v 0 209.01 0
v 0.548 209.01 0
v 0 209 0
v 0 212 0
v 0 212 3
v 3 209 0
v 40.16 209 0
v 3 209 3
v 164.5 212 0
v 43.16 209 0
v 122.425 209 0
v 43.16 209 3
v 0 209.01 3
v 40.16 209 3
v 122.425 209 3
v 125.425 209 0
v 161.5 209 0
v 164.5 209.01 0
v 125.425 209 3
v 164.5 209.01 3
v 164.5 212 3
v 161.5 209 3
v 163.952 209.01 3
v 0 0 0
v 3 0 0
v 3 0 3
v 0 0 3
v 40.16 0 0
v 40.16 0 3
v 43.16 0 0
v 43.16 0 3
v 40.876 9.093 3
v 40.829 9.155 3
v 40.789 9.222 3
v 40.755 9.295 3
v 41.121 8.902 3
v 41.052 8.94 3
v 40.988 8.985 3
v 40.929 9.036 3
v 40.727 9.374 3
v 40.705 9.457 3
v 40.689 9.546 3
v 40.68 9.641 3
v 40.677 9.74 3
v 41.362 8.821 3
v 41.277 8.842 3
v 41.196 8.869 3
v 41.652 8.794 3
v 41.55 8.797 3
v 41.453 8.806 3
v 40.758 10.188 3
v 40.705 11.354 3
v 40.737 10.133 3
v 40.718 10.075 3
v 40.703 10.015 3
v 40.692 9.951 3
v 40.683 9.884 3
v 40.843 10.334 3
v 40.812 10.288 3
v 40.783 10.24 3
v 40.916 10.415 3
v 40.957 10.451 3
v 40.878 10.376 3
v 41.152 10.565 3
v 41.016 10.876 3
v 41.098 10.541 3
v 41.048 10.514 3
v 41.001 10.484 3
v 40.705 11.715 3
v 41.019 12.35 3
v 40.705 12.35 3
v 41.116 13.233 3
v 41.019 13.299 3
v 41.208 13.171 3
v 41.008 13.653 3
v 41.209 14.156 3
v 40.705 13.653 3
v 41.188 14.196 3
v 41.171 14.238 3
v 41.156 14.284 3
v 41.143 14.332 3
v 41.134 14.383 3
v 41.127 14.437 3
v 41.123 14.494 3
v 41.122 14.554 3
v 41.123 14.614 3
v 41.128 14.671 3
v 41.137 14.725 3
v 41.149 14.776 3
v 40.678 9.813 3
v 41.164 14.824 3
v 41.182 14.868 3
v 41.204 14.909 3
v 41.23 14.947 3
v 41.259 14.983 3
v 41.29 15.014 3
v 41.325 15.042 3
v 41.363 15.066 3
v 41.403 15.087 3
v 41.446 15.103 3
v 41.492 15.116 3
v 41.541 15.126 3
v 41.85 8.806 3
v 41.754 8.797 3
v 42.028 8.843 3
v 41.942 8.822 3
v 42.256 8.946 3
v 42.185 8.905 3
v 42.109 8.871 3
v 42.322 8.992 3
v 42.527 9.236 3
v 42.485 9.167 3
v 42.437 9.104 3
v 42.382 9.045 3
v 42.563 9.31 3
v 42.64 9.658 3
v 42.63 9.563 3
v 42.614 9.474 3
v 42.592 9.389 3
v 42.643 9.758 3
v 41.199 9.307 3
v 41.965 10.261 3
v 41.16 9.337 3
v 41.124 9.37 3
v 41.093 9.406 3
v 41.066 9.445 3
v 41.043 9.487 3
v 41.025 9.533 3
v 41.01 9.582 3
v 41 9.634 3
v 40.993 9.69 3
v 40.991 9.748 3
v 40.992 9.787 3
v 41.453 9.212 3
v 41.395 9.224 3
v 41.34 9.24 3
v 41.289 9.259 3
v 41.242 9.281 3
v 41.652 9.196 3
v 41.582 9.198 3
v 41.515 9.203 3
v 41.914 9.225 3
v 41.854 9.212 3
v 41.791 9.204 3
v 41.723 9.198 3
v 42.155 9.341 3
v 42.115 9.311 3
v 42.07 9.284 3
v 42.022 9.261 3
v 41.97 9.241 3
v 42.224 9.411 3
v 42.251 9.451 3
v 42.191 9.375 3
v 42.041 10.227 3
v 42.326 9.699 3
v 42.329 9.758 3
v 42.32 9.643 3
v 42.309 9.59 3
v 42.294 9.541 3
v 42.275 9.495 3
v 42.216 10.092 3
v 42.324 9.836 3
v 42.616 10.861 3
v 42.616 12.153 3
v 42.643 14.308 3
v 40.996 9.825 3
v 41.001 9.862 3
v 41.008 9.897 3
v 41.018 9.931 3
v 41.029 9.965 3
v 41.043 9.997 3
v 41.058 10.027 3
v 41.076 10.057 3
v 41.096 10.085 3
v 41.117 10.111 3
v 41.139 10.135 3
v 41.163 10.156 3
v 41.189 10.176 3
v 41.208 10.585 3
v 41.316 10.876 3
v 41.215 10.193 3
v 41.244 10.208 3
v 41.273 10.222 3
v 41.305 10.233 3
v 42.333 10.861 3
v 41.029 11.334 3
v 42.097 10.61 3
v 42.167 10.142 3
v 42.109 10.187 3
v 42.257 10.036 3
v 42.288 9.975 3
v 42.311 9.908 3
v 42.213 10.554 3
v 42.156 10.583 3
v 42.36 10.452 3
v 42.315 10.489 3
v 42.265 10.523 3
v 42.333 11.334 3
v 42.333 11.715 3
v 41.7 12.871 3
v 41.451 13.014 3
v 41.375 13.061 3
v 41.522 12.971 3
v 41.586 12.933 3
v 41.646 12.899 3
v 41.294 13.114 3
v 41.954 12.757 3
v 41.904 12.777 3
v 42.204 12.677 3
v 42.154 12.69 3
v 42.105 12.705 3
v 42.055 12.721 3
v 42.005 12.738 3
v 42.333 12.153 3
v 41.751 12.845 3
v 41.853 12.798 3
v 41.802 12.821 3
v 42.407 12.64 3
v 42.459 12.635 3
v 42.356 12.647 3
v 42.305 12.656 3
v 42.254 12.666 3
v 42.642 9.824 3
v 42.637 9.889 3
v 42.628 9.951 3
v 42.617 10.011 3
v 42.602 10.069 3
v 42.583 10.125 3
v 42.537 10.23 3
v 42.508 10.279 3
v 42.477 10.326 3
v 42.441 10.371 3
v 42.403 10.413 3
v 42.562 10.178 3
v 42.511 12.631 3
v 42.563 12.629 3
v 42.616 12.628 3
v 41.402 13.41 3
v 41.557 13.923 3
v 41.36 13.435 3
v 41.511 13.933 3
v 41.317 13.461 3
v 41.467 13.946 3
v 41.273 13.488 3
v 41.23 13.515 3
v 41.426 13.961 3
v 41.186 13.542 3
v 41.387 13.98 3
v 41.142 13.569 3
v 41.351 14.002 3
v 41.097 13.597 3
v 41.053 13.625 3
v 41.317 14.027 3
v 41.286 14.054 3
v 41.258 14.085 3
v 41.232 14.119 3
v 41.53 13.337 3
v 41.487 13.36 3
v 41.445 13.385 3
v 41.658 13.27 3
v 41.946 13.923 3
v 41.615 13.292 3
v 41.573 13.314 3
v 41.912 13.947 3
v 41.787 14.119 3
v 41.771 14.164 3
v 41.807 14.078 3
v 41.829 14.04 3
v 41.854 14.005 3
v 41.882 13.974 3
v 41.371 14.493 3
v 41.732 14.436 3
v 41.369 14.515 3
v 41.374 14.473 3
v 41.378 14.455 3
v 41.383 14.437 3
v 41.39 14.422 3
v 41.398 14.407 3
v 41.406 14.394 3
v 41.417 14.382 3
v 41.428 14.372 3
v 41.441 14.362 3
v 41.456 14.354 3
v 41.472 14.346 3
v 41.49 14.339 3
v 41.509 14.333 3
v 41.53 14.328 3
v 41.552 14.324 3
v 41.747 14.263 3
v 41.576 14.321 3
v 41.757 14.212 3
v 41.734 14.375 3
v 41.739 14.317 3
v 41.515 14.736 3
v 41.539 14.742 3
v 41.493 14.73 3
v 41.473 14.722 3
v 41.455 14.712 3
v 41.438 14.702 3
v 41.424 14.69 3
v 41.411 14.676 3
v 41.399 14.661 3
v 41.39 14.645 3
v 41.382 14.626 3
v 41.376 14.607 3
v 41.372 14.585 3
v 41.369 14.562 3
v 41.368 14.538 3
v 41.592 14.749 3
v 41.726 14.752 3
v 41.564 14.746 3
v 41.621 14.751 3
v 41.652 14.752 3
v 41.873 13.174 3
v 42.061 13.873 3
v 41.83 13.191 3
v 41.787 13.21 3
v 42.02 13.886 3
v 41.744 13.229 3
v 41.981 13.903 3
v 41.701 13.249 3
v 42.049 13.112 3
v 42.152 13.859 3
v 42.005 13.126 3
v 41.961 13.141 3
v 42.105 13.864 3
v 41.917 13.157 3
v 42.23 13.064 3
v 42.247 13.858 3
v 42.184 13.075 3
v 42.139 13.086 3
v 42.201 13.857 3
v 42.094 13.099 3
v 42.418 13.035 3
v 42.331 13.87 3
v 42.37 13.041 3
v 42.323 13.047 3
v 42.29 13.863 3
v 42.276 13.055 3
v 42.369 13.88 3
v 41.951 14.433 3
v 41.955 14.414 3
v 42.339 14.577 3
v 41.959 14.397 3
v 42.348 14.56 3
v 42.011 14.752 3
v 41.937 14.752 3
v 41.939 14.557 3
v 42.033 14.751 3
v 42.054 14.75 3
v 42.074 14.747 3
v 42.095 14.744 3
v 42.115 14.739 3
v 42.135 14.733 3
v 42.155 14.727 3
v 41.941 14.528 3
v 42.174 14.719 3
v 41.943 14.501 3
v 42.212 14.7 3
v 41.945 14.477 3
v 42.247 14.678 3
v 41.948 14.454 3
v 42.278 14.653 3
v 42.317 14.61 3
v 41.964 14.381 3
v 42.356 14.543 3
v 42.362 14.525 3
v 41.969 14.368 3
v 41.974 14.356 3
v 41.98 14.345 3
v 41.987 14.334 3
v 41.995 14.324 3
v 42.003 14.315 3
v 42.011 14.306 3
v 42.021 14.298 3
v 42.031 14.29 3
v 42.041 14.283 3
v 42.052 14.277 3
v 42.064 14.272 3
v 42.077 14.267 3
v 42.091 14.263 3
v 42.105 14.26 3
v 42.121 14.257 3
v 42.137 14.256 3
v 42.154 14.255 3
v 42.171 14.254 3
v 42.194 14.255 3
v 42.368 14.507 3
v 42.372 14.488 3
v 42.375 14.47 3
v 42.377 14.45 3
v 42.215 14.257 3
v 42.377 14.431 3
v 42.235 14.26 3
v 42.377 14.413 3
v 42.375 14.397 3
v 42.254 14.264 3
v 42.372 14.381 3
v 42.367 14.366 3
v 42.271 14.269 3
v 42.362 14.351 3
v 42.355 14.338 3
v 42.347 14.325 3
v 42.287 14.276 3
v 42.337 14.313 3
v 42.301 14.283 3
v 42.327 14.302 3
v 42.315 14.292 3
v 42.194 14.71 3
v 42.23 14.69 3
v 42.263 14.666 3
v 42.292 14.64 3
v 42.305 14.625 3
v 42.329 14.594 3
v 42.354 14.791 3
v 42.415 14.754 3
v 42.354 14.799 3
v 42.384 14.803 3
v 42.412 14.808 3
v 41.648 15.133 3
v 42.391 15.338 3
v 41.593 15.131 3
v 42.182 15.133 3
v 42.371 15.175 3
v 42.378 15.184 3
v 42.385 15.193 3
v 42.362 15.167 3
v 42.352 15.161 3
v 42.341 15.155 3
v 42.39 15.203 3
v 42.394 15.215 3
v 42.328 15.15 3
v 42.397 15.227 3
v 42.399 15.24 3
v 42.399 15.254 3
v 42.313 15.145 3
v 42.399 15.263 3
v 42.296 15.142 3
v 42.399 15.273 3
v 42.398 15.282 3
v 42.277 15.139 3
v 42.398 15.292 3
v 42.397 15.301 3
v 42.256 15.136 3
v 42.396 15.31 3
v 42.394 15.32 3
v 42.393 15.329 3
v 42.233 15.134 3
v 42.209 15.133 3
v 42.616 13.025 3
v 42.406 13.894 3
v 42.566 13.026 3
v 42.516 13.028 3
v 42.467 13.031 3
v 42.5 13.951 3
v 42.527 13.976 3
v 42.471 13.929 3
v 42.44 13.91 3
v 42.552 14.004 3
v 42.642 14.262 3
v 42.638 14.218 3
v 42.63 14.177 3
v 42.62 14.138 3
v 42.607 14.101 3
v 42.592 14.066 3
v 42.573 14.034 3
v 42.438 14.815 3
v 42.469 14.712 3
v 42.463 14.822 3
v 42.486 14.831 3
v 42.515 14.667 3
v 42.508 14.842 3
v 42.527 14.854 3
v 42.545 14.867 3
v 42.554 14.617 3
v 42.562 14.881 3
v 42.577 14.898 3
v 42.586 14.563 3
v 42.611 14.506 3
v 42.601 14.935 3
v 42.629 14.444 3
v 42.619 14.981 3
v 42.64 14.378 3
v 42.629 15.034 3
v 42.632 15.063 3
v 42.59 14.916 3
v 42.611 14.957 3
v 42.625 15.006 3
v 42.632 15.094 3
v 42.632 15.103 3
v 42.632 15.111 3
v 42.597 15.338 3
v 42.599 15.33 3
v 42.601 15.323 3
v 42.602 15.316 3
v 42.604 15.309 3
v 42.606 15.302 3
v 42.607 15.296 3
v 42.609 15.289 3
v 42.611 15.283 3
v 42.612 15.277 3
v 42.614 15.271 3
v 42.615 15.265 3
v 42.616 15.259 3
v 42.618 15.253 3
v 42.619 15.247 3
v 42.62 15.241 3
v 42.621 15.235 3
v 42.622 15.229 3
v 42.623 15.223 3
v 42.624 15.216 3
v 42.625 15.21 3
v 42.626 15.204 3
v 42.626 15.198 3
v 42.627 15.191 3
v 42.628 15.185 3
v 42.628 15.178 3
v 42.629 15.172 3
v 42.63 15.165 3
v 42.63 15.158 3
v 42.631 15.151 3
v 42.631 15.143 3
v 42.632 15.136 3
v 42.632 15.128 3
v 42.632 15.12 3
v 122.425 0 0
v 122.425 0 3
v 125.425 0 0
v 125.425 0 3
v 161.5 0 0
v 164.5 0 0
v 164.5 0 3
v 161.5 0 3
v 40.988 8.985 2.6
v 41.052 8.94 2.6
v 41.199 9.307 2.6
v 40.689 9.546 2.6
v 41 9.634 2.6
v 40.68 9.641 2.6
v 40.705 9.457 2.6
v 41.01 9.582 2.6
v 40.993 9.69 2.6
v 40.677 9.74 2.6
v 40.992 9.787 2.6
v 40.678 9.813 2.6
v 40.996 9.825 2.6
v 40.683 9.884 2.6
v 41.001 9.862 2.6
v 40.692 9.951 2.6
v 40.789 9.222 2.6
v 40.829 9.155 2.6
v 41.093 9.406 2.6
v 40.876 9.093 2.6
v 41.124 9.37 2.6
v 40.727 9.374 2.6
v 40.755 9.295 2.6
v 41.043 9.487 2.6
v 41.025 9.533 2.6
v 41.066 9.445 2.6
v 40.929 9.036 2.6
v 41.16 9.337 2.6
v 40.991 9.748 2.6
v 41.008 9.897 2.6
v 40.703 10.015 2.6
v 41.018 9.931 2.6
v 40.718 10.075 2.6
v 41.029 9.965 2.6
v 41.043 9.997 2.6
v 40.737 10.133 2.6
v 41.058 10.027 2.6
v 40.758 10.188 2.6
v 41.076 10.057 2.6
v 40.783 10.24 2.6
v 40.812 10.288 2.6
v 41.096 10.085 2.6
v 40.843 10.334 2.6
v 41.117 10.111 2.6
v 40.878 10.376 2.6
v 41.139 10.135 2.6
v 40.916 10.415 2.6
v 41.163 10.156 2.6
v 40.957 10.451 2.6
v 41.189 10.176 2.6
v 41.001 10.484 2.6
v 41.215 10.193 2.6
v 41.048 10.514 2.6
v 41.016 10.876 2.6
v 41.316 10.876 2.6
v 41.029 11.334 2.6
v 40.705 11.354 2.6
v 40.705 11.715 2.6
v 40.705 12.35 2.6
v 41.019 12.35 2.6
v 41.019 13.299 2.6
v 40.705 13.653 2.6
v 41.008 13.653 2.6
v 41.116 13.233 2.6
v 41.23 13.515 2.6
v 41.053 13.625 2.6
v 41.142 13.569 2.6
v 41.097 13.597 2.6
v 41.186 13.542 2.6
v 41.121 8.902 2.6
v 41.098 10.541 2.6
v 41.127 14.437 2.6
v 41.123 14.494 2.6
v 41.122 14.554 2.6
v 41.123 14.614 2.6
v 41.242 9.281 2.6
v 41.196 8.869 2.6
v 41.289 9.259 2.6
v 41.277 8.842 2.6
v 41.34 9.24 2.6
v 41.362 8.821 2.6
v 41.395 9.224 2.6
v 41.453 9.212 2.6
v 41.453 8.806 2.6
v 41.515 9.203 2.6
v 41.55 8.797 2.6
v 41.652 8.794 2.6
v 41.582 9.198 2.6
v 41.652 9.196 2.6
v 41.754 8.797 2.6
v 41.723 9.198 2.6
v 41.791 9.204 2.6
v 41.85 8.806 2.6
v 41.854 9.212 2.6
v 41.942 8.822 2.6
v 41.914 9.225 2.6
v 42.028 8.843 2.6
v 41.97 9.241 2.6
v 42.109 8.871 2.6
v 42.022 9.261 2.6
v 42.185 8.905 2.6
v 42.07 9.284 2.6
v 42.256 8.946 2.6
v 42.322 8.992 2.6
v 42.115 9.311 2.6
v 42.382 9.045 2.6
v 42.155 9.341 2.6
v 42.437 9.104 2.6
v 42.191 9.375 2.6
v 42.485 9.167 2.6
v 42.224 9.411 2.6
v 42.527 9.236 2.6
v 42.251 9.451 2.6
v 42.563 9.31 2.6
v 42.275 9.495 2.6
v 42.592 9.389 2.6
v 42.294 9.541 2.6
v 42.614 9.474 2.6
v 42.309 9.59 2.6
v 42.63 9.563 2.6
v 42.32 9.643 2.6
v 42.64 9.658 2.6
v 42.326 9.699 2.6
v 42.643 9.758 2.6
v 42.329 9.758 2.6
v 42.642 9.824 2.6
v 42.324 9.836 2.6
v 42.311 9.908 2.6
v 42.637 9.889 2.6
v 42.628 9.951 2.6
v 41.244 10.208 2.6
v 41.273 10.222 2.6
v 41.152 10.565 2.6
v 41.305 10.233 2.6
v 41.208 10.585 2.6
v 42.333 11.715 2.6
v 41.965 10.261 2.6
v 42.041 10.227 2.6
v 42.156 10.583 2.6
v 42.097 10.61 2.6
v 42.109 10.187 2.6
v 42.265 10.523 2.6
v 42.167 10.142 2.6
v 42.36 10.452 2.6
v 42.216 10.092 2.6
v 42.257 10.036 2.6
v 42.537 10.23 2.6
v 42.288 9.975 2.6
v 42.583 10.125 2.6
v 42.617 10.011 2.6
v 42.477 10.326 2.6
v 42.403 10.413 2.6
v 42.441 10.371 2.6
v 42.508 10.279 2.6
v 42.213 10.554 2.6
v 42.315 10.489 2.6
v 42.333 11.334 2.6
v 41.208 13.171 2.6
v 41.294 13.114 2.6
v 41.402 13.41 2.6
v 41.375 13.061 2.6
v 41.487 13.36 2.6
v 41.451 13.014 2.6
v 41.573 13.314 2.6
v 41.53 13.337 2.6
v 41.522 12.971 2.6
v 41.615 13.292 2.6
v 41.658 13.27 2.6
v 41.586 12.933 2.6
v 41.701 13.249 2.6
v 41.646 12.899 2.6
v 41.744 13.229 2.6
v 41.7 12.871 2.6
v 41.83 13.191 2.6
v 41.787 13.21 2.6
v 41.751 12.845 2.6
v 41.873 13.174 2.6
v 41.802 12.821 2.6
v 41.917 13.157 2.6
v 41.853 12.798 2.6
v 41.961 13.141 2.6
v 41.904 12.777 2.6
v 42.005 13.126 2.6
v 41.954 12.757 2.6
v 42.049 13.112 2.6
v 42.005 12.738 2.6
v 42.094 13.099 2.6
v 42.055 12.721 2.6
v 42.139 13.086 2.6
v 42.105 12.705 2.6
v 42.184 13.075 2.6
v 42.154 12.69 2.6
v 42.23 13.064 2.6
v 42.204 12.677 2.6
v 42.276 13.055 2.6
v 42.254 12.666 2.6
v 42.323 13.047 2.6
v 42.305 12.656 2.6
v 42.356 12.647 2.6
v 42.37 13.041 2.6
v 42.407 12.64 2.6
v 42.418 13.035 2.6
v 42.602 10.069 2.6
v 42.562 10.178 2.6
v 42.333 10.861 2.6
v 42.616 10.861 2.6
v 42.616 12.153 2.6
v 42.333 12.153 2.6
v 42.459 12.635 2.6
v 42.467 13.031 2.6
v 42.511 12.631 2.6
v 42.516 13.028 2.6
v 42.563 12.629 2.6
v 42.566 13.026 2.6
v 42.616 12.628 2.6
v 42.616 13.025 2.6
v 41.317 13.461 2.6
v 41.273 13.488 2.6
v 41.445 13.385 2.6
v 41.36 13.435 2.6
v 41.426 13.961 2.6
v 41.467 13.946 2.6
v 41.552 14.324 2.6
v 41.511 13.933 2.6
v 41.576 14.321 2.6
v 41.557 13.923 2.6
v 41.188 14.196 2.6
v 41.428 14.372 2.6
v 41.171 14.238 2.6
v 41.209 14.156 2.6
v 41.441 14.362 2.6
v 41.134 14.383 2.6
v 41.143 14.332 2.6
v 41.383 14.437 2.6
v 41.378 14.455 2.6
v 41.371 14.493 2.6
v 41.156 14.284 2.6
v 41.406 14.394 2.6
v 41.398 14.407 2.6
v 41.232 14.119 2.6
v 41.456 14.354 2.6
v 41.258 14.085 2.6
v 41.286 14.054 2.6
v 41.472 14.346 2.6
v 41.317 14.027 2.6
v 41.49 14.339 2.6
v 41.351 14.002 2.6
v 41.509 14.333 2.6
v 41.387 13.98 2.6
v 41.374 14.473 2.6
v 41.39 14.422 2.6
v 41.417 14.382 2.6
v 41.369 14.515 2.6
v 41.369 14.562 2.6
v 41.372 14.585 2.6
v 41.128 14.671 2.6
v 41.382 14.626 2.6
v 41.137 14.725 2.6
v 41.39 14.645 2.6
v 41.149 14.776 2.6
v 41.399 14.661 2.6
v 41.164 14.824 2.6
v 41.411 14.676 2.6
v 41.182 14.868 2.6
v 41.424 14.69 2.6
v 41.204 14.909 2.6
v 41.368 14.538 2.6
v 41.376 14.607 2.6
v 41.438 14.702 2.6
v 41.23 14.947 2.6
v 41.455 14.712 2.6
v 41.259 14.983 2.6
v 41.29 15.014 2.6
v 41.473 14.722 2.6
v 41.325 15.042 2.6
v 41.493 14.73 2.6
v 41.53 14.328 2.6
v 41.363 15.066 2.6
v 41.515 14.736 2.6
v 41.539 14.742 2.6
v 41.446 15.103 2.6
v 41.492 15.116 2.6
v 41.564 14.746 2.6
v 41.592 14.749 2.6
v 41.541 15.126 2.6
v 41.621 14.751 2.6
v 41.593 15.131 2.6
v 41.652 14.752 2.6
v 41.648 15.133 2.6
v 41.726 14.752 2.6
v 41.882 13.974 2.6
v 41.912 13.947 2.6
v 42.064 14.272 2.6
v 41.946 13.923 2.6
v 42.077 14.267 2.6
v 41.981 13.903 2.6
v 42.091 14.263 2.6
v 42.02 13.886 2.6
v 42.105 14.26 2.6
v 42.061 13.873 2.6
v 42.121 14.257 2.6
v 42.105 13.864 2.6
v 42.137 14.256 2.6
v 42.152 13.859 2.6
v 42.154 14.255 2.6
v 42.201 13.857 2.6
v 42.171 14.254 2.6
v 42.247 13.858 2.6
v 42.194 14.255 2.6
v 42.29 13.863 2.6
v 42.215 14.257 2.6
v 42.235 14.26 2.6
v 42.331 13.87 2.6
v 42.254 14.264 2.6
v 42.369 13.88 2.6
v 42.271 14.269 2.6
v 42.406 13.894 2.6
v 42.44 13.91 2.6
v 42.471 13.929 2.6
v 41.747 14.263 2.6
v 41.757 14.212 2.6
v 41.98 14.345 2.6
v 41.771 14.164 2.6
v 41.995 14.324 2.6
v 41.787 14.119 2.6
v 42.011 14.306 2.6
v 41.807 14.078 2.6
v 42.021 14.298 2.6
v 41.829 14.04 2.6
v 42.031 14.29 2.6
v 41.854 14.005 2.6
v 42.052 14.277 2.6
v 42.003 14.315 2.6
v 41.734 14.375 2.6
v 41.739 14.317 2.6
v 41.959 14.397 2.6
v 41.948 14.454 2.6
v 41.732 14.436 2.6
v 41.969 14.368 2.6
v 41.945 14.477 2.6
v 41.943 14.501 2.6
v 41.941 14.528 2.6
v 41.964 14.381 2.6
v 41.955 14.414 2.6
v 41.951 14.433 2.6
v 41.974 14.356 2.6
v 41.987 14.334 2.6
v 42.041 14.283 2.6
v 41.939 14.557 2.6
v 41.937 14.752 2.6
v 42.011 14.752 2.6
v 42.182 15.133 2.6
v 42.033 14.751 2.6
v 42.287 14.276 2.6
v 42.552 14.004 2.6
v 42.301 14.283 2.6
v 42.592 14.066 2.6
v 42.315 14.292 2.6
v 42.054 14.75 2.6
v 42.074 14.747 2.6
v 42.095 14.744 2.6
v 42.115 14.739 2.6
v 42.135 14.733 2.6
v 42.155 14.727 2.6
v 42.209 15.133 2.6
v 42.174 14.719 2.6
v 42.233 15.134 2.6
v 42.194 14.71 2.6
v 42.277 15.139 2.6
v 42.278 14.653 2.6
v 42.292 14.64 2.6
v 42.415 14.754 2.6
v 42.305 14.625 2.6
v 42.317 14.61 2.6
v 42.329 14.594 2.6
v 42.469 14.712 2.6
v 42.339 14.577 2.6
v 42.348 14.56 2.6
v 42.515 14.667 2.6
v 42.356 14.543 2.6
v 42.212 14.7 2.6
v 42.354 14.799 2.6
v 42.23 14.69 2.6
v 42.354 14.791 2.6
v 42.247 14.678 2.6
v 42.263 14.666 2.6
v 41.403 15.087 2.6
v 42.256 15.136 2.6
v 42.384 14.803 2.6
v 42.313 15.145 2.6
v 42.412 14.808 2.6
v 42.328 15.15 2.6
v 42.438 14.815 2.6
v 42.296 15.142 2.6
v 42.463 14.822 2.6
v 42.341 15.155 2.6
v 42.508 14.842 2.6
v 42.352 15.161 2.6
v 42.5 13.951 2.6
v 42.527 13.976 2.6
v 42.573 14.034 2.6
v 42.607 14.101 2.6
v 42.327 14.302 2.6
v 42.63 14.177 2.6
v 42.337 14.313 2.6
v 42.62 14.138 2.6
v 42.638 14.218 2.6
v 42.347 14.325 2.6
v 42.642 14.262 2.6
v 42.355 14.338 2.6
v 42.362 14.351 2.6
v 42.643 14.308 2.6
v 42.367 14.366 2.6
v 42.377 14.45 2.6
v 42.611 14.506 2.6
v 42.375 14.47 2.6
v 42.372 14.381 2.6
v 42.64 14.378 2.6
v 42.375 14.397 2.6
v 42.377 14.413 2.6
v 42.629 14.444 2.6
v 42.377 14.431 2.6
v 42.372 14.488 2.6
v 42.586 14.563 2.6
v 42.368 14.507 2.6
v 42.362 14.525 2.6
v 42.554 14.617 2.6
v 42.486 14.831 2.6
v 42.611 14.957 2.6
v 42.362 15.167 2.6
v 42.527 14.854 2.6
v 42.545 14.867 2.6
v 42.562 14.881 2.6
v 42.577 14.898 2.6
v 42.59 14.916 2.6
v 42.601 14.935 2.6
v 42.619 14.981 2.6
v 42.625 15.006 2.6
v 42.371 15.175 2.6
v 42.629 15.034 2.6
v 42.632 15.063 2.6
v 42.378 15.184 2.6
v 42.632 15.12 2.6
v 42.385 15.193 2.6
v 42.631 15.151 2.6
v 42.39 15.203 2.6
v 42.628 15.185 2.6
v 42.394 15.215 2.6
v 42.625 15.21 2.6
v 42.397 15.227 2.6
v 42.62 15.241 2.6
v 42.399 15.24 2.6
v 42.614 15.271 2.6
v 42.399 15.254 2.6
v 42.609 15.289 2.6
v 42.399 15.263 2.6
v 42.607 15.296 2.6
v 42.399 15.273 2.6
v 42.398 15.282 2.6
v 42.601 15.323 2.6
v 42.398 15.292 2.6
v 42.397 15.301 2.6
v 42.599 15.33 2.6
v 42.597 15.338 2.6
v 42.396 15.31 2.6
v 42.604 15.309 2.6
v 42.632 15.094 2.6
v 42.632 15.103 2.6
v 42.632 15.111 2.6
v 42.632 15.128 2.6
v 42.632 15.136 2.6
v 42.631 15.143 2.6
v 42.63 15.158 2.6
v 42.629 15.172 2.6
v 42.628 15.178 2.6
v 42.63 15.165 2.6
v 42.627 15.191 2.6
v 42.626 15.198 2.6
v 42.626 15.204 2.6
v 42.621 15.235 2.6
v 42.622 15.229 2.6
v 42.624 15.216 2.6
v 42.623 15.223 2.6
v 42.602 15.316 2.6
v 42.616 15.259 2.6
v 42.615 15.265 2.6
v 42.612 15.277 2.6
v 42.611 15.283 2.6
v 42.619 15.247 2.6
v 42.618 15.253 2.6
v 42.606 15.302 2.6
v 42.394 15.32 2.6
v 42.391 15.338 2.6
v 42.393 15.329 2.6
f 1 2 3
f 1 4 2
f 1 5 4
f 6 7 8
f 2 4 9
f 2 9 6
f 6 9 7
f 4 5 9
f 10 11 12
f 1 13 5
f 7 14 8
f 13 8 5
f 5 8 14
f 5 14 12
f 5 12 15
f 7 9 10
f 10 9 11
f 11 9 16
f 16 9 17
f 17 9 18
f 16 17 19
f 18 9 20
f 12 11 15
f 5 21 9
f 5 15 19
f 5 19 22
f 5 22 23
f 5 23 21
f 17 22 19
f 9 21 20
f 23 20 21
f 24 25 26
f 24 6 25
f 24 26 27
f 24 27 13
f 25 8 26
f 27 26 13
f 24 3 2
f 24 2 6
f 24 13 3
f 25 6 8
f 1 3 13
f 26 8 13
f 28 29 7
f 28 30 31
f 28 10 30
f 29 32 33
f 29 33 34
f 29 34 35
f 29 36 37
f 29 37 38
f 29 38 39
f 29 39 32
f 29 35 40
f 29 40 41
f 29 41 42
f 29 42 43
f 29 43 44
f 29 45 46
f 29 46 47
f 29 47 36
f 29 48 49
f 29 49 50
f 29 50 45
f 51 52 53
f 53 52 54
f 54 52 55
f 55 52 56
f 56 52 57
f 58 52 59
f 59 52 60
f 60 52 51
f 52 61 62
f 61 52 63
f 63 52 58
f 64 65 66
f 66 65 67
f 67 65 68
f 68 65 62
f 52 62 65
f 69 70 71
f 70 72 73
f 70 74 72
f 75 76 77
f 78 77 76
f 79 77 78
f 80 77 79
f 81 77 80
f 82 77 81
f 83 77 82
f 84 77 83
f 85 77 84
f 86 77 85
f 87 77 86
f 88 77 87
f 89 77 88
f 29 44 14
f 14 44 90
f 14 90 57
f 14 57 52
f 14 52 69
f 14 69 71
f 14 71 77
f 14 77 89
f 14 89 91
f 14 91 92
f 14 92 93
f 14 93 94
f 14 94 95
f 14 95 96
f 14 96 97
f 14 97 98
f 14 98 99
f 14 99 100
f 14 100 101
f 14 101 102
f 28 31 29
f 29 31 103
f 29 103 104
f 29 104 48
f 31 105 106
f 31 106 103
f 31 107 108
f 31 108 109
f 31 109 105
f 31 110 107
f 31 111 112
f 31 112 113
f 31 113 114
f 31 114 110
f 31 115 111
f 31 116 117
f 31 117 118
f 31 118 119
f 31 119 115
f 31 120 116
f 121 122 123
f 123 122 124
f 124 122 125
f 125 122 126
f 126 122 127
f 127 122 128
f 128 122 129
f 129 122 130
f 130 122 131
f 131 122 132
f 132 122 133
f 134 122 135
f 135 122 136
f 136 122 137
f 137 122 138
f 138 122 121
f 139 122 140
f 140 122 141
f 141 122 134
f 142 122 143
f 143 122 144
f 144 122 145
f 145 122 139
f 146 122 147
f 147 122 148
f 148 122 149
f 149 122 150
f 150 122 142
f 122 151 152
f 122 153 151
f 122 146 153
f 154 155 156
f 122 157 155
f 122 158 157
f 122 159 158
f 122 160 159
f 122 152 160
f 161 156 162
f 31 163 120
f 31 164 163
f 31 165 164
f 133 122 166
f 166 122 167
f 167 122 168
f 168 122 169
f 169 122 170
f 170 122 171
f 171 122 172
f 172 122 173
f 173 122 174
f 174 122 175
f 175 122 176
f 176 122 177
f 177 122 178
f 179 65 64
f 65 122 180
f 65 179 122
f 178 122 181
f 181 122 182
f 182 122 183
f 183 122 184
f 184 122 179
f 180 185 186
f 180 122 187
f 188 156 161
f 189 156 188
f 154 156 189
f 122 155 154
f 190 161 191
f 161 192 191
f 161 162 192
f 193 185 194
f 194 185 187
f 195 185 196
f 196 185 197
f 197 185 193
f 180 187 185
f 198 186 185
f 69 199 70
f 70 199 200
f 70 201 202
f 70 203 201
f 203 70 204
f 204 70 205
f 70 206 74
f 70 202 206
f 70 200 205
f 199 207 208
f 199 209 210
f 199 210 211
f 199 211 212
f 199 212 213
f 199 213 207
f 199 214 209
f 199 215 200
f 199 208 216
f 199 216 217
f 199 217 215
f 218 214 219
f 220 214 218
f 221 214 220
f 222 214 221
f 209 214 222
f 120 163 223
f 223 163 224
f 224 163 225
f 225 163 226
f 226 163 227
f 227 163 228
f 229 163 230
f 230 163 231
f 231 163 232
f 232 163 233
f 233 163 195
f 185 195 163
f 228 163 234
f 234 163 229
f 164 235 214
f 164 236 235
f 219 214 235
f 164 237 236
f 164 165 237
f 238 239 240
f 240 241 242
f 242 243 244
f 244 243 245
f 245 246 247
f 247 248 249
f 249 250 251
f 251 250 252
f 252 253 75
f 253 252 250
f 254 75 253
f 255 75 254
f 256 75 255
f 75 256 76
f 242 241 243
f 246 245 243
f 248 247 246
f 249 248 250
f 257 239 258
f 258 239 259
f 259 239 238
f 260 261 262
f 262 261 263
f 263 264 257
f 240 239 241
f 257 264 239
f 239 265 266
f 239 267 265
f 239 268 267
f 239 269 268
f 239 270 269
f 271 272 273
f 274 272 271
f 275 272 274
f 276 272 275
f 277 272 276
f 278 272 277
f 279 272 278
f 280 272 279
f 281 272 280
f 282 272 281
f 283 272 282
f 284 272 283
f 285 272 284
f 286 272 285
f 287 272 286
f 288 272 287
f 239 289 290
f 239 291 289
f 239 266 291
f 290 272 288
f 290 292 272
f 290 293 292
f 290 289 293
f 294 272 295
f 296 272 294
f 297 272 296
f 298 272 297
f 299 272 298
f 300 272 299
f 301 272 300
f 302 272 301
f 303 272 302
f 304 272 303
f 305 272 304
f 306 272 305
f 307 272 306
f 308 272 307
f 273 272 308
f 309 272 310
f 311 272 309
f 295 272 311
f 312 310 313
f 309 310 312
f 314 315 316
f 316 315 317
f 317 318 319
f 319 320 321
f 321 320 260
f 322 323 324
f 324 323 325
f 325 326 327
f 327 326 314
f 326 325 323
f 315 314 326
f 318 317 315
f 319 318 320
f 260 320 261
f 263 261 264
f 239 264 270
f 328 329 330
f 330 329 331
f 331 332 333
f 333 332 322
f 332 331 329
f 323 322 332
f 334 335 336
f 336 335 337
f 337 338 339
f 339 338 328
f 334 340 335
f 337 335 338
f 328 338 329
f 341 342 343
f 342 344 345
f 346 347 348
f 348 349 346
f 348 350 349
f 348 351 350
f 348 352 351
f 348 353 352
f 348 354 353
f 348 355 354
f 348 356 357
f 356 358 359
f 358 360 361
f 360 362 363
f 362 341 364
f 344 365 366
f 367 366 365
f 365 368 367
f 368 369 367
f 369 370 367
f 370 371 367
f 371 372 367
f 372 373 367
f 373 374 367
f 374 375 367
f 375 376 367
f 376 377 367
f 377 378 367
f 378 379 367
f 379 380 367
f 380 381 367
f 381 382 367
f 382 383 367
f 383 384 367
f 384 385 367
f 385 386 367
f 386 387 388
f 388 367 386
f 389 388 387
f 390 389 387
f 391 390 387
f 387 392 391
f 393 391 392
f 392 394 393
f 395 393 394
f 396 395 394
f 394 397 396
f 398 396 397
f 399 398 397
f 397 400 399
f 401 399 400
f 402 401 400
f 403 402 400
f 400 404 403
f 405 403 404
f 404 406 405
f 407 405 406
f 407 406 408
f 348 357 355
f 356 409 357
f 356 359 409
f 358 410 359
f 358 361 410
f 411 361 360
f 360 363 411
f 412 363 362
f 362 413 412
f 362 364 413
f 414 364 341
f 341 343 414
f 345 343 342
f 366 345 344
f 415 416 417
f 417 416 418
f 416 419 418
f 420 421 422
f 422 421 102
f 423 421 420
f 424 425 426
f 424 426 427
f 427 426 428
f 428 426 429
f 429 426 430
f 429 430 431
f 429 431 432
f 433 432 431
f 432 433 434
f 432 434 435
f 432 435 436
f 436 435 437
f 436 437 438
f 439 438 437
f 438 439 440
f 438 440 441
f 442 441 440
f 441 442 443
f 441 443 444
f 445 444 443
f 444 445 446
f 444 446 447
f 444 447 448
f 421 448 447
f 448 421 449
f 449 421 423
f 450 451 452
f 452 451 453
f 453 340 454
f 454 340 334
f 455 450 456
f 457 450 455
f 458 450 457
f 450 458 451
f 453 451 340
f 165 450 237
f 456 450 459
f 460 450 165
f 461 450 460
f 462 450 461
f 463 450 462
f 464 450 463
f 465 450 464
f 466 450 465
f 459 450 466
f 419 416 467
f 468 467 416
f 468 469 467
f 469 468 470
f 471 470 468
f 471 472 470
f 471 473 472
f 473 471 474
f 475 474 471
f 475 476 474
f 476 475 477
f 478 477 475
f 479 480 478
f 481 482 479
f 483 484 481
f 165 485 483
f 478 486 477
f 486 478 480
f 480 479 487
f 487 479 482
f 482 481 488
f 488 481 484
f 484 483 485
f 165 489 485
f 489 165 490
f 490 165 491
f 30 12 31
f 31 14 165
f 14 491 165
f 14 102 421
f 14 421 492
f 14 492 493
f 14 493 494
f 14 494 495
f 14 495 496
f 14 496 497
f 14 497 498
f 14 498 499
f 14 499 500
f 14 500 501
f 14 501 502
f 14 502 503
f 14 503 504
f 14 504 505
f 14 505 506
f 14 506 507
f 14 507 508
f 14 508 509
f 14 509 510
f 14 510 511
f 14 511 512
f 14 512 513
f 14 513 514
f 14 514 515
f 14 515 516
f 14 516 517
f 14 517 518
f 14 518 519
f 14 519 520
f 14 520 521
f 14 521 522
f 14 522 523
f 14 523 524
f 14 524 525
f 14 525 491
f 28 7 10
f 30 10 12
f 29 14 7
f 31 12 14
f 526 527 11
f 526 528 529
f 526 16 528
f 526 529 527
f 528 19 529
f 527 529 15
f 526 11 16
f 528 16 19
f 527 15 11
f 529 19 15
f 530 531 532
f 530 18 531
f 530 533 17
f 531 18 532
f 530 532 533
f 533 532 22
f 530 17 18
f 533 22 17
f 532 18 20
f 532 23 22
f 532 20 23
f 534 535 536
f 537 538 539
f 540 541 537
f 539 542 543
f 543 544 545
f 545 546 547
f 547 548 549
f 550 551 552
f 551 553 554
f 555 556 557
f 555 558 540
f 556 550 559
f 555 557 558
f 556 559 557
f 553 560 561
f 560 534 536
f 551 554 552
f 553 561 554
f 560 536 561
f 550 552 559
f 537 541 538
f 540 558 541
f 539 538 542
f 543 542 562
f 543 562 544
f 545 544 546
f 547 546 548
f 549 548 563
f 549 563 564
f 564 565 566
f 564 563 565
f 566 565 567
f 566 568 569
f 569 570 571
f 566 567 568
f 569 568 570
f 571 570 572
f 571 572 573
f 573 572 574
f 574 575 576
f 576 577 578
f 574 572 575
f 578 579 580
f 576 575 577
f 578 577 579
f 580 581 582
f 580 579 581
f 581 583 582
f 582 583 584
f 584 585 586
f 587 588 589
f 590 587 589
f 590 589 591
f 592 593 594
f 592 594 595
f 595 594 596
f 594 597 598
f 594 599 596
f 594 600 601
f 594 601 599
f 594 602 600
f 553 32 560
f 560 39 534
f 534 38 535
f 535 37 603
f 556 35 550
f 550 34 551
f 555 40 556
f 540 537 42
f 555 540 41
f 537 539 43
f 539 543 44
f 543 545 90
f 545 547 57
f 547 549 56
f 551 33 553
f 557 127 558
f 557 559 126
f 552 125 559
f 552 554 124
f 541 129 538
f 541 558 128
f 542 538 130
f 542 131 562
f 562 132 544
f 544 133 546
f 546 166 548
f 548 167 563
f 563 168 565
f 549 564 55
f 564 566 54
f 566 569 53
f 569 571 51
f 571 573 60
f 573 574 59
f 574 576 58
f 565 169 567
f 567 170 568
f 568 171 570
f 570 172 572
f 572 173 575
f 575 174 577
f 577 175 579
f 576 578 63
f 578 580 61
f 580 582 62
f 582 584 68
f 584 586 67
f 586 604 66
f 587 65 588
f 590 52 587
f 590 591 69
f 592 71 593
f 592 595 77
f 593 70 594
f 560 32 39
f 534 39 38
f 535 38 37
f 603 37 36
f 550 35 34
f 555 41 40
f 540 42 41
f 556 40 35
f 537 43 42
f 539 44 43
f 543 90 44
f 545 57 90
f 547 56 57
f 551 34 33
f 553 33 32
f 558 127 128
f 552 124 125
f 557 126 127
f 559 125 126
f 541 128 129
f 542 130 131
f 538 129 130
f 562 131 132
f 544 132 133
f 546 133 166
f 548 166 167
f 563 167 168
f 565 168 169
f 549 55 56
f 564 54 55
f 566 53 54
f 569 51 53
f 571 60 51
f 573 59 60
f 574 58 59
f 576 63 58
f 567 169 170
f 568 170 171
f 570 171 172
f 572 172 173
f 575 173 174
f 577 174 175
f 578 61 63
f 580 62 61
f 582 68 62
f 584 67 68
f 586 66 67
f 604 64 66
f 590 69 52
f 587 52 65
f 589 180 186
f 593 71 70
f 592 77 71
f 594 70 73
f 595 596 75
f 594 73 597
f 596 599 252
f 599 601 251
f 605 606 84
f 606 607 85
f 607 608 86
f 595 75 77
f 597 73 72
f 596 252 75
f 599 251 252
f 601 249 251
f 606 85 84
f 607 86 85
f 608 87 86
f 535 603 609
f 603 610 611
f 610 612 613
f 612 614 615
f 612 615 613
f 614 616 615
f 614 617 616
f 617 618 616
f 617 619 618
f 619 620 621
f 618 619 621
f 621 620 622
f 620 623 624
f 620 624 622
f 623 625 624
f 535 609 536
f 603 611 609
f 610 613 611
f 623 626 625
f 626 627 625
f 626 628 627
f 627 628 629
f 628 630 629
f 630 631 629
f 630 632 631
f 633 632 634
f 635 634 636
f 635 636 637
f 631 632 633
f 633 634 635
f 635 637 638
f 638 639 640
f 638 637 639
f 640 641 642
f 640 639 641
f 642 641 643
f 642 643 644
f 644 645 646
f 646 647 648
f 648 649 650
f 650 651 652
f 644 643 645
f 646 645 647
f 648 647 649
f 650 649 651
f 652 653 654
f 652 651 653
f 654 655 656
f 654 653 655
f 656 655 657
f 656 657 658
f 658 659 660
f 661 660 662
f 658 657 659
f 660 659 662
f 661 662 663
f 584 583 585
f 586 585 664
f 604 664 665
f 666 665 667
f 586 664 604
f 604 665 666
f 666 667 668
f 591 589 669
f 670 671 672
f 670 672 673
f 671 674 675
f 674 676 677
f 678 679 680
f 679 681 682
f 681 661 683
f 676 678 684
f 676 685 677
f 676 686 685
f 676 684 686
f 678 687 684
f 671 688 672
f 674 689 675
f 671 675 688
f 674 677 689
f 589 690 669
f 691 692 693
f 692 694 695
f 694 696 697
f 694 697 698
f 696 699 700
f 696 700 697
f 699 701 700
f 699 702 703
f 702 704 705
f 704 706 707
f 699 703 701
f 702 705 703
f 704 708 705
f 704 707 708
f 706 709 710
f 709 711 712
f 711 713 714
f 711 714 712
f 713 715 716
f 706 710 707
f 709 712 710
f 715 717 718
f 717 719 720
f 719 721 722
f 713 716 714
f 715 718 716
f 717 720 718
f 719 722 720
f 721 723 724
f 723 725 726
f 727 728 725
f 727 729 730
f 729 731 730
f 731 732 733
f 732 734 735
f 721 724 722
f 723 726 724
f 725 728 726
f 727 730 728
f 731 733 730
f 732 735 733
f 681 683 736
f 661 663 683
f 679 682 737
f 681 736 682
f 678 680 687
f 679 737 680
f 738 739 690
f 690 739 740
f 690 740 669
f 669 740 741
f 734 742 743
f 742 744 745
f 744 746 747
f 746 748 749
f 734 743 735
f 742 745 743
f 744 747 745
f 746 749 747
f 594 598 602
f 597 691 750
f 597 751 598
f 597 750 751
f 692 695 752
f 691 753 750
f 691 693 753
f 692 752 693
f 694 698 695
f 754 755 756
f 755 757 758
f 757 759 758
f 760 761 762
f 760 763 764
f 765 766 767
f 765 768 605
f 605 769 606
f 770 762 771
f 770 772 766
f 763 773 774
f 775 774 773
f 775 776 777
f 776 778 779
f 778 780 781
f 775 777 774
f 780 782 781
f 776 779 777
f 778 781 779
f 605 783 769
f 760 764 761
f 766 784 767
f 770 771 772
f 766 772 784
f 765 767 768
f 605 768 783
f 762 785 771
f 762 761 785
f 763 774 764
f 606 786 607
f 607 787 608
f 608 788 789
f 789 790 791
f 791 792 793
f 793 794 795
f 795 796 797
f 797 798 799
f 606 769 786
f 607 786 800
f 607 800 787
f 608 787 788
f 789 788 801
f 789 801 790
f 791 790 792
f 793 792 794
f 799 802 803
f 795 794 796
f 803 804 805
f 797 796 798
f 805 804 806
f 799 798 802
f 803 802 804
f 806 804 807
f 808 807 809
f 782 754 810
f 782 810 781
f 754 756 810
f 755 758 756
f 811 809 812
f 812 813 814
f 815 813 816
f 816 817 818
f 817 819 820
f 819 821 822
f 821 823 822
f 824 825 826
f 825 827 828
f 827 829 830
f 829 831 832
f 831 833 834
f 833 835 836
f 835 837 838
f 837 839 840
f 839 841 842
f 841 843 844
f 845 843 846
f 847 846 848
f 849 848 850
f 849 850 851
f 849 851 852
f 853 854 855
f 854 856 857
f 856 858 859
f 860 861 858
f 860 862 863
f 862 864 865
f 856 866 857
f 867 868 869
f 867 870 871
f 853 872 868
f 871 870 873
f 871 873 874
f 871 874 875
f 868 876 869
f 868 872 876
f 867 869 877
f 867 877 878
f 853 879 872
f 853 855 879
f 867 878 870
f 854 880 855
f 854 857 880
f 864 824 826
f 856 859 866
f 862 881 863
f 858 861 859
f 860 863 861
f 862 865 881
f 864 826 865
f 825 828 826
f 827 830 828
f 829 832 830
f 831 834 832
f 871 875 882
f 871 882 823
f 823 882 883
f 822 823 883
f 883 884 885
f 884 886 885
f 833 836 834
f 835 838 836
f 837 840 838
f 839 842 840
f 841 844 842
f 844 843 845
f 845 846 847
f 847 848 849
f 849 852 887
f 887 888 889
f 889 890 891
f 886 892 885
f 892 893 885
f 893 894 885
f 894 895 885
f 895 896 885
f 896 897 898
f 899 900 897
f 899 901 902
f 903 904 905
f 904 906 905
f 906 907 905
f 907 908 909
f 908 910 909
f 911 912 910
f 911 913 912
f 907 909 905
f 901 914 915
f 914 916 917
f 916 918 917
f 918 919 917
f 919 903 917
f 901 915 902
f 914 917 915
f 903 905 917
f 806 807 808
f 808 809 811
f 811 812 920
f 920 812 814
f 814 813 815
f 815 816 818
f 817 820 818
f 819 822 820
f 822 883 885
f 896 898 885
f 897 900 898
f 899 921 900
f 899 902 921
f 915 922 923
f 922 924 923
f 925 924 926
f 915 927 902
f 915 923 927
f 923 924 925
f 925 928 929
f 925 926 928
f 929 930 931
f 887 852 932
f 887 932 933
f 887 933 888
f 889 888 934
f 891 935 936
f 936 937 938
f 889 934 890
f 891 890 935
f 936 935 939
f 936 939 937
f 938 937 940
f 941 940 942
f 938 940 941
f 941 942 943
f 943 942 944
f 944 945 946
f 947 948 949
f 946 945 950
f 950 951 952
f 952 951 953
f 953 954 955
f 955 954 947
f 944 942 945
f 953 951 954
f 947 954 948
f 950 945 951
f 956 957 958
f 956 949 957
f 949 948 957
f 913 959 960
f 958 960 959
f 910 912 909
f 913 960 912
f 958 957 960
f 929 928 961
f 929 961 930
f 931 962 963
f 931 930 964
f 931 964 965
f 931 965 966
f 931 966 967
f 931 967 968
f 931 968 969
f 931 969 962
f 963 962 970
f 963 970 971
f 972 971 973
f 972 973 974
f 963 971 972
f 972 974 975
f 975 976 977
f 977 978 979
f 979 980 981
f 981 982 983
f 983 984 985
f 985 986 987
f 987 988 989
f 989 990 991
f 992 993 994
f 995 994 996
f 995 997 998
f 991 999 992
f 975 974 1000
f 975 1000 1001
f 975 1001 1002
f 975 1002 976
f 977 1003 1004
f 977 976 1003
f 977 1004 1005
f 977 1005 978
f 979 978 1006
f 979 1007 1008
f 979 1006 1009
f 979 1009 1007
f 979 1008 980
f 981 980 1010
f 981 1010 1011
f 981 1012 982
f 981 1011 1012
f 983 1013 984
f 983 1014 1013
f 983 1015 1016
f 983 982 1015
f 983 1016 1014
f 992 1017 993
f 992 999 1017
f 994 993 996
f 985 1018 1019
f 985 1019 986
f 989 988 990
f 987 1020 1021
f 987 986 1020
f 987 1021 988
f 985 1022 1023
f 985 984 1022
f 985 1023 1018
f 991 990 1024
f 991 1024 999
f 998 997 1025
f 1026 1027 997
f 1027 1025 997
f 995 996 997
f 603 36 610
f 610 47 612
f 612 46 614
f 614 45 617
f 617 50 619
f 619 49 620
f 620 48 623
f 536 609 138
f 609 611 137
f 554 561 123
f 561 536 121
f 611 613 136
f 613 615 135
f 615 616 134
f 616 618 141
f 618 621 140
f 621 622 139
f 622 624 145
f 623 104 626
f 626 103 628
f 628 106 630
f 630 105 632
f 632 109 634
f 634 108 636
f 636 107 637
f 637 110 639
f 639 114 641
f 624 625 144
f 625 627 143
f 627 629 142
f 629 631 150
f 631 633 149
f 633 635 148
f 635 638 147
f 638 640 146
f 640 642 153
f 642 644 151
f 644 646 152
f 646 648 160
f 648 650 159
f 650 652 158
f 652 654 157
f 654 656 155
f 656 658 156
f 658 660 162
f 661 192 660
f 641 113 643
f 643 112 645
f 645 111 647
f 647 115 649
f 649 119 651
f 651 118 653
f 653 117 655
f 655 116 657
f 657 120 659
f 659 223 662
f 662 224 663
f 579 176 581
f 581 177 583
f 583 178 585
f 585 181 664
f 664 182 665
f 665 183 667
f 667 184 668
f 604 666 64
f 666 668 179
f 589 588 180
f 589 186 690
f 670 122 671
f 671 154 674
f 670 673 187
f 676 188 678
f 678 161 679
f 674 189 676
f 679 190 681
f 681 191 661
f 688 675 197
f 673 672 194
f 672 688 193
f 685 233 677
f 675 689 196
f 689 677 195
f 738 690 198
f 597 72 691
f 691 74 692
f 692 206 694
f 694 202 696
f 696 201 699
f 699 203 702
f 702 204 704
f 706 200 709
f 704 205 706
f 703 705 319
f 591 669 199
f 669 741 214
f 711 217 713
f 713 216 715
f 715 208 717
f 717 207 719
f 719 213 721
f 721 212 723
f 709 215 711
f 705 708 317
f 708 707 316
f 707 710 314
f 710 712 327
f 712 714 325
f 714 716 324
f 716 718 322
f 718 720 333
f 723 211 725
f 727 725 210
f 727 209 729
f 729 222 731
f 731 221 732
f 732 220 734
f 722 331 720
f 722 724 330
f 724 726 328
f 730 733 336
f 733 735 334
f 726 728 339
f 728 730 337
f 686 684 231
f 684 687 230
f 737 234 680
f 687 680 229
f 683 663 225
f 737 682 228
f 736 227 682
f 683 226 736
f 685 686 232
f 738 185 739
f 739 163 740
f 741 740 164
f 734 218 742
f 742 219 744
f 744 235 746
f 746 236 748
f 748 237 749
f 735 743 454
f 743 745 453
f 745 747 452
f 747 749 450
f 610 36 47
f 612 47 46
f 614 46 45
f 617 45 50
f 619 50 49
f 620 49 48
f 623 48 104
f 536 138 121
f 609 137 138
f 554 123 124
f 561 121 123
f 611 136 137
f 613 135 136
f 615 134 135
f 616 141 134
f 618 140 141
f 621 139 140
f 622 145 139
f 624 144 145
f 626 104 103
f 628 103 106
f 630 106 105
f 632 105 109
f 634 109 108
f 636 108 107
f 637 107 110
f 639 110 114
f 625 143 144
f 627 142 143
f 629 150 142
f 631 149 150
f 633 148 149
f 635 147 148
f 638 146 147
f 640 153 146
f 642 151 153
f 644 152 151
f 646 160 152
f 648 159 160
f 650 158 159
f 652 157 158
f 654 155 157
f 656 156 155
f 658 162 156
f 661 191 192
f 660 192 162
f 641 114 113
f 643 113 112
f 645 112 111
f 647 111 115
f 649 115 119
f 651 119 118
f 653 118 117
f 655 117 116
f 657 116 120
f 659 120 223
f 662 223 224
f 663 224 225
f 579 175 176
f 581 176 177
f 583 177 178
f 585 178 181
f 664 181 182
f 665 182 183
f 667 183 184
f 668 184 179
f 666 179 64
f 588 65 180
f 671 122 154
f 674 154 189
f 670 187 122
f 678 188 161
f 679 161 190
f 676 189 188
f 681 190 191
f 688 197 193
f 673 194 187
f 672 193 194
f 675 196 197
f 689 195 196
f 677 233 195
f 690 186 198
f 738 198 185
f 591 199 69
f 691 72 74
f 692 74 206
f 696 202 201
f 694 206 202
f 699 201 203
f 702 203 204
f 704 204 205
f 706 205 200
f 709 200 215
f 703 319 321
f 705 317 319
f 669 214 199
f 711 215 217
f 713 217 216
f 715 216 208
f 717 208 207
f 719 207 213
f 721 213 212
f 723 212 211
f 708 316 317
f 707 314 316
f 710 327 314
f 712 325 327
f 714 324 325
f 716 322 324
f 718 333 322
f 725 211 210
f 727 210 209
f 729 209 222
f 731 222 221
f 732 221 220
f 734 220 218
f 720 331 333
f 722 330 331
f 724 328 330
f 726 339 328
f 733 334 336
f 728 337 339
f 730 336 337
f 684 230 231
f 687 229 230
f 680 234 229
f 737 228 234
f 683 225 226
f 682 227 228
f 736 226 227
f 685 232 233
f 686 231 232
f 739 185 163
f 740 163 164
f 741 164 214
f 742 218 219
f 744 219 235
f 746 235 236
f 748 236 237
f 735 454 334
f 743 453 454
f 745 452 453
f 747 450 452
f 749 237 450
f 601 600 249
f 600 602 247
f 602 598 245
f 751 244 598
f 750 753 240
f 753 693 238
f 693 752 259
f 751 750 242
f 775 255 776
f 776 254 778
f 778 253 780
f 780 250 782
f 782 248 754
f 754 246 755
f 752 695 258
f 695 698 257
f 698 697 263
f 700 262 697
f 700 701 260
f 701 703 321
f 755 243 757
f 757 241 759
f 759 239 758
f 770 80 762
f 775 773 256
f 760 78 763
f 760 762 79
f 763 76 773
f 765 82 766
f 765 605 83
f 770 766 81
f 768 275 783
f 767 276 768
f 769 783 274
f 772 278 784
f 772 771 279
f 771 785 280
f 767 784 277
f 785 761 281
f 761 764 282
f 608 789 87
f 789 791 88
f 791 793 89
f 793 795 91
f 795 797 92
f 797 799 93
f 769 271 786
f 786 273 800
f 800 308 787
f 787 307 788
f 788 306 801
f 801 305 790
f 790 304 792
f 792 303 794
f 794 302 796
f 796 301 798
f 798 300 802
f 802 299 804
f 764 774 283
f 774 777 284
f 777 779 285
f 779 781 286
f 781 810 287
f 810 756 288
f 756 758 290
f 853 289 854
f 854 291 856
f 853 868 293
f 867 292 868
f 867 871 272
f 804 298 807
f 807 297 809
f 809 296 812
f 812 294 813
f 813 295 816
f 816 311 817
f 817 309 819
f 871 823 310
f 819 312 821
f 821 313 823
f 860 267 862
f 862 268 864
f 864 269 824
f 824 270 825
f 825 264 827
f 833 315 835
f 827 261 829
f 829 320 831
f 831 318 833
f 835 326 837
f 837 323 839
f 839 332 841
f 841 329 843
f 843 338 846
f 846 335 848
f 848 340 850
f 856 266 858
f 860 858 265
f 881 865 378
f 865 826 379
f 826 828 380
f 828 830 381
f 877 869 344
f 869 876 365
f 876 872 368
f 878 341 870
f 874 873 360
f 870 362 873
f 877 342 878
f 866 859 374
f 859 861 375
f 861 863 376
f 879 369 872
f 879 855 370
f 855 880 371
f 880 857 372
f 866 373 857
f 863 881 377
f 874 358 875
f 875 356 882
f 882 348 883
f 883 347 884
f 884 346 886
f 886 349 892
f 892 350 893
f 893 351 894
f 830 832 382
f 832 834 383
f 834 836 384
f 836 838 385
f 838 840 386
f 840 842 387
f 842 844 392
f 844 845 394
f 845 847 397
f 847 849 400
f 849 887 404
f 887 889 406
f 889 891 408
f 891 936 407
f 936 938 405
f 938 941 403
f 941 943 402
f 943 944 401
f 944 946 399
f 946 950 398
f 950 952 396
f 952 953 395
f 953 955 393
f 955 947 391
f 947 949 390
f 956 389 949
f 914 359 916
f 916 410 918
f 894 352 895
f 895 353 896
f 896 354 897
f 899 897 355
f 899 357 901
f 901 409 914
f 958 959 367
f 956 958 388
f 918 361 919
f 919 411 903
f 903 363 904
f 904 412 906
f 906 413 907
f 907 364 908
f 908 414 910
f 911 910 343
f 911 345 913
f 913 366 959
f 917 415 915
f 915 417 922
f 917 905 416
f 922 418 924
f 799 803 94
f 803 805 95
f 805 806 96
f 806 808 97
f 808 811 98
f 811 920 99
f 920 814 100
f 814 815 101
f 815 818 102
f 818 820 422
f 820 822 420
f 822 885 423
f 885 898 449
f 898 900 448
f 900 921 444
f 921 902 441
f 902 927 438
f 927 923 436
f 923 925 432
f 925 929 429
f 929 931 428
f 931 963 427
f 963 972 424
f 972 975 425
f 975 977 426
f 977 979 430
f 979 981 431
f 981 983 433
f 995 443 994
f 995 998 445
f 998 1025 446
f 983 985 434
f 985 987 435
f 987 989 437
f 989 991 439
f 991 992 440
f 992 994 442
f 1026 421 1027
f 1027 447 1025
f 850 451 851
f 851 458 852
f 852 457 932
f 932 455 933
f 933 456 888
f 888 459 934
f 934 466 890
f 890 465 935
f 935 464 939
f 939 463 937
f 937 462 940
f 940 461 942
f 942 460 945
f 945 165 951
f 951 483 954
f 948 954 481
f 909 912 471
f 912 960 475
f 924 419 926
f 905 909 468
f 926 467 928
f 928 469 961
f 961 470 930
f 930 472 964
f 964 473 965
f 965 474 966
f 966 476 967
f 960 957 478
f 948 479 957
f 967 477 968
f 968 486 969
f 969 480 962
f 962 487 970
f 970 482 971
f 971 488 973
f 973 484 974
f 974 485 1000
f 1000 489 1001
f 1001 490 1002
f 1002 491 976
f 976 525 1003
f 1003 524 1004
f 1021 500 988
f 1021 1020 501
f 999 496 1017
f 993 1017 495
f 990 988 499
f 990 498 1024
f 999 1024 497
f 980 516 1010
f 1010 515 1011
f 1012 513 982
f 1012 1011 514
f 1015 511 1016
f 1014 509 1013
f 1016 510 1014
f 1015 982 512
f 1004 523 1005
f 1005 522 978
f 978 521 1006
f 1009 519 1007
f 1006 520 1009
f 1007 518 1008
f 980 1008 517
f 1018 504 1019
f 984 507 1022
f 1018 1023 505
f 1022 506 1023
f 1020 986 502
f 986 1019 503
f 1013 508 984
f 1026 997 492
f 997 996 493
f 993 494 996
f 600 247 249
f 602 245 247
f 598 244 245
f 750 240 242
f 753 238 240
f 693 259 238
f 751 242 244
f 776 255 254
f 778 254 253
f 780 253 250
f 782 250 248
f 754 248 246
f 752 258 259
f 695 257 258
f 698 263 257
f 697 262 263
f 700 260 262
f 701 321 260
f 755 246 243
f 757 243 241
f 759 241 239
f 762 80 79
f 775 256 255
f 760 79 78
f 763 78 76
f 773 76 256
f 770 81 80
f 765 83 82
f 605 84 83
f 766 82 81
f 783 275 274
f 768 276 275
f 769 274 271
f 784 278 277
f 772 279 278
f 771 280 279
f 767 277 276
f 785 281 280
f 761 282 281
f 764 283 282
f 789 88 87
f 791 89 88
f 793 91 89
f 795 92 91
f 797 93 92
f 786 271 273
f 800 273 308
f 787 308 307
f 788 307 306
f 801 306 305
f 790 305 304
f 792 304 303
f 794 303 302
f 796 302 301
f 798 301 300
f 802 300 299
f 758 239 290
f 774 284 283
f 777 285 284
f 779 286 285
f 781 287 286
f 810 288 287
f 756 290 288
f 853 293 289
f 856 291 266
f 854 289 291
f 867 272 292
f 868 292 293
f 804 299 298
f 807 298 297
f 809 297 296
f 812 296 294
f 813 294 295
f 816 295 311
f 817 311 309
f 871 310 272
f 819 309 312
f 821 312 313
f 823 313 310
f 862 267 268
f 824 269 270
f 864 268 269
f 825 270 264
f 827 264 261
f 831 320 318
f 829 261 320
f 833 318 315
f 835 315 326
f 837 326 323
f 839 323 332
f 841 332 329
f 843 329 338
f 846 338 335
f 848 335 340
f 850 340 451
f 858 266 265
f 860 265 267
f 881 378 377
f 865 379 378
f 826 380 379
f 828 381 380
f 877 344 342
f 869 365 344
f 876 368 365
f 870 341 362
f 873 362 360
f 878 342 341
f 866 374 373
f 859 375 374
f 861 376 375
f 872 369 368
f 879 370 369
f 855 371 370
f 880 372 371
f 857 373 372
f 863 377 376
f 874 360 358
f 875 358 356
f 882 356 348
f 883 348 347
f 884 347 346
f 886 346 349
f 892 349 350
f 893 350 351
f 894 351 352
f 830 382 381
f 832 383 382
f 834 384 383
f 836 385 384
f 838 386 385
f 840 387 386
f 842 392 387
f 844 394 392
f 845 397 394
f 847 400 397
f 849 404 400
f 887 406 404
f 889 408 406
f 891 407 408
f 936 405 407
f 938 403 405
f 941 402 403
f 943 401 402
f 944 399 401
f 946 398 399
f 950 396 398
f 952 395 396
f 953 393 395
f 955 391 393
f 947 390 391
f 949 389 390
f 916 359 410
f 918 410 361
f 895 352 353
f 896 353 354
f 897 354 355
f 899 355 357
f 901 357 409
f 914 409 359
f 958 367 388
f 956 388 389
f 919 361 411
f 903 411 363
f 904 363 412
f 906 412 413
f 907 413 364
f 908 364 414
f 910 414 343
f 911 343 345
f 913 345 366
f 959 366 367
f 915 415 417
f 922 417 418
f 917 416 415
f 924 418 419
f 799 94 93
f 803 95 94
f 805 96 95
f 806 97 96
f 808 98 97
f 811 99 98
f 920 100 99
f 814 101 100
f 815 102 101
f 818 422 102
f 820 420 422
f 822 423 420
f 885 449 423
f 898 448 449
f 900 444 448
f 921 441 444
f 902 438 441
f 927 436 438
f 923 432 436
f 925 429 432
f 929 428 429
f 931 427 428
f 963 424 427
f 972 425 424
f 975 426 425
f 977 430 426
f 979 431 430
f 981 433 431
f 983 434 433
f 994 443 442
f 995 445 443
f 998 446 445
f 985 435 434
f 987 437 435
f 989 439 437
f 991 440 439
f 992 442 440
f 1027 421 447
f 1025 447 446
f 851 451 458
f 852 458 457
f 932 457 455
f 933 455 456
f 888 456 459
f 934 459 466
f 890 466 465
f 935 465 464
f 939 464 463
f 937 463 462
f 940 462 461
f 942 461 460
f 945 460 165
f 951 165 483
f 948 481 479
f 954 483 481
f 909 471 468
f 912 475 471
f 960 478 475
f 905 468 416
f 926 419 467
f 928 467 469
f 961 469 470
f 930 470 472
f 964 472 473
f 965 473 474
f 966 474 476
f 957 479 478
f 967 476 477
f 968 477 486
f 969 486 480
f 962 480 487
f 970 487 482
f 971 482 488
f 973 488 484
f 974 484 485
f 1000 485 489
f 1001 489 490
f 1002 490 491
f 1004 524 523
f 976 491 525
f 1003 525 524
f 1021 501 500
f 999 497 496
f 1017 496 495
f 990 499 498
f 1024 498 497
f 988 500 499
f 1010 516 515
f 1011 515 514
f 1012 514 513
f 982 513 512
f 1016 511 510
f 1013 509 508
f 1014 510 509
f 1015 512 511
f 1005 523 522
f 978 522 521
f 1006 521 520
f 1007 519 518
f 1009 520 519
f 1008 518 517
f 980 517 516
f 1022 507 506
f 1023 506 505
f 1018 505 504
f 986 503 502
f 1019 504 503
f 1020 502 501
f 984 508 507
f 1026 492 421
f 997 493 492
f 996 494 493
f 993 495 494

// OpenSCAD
// Toccata stage-0 C17a - 정하중 받침 빗 (핀 선 4줄 + 뒷벽, 레일 밑은 빔) (generated by make_stage0.py; print orientation, z = build direction)
$fn = 64;
difference(){
union(){
translate([0.0000,209.0000,0.0000]) cube([164.5000,3.0000,3.0000]);
translate([0.0000,0.0000,0.0000]) cube([3.0000,209.0100,3.0000]);
translate([40.1600,0.0000,0.0000]) cube([3.0000,209.0100,3.0000]);
translate([122.4250,0.0000,0.0000]) cube([3.0000,209.0100,3.0000]);
translate([161.5000,0.0000,0.0000]) cube([3.0000,209.0100,3.0000]);
}
translate([41.6600,12.0000,2.6000]) rotate([0,0,90.00]) linear_extrude(height=0.6000) text("C17a", size=2.000, font="Liberation Sans:style=Bold", halign="center", valign="center");
}
